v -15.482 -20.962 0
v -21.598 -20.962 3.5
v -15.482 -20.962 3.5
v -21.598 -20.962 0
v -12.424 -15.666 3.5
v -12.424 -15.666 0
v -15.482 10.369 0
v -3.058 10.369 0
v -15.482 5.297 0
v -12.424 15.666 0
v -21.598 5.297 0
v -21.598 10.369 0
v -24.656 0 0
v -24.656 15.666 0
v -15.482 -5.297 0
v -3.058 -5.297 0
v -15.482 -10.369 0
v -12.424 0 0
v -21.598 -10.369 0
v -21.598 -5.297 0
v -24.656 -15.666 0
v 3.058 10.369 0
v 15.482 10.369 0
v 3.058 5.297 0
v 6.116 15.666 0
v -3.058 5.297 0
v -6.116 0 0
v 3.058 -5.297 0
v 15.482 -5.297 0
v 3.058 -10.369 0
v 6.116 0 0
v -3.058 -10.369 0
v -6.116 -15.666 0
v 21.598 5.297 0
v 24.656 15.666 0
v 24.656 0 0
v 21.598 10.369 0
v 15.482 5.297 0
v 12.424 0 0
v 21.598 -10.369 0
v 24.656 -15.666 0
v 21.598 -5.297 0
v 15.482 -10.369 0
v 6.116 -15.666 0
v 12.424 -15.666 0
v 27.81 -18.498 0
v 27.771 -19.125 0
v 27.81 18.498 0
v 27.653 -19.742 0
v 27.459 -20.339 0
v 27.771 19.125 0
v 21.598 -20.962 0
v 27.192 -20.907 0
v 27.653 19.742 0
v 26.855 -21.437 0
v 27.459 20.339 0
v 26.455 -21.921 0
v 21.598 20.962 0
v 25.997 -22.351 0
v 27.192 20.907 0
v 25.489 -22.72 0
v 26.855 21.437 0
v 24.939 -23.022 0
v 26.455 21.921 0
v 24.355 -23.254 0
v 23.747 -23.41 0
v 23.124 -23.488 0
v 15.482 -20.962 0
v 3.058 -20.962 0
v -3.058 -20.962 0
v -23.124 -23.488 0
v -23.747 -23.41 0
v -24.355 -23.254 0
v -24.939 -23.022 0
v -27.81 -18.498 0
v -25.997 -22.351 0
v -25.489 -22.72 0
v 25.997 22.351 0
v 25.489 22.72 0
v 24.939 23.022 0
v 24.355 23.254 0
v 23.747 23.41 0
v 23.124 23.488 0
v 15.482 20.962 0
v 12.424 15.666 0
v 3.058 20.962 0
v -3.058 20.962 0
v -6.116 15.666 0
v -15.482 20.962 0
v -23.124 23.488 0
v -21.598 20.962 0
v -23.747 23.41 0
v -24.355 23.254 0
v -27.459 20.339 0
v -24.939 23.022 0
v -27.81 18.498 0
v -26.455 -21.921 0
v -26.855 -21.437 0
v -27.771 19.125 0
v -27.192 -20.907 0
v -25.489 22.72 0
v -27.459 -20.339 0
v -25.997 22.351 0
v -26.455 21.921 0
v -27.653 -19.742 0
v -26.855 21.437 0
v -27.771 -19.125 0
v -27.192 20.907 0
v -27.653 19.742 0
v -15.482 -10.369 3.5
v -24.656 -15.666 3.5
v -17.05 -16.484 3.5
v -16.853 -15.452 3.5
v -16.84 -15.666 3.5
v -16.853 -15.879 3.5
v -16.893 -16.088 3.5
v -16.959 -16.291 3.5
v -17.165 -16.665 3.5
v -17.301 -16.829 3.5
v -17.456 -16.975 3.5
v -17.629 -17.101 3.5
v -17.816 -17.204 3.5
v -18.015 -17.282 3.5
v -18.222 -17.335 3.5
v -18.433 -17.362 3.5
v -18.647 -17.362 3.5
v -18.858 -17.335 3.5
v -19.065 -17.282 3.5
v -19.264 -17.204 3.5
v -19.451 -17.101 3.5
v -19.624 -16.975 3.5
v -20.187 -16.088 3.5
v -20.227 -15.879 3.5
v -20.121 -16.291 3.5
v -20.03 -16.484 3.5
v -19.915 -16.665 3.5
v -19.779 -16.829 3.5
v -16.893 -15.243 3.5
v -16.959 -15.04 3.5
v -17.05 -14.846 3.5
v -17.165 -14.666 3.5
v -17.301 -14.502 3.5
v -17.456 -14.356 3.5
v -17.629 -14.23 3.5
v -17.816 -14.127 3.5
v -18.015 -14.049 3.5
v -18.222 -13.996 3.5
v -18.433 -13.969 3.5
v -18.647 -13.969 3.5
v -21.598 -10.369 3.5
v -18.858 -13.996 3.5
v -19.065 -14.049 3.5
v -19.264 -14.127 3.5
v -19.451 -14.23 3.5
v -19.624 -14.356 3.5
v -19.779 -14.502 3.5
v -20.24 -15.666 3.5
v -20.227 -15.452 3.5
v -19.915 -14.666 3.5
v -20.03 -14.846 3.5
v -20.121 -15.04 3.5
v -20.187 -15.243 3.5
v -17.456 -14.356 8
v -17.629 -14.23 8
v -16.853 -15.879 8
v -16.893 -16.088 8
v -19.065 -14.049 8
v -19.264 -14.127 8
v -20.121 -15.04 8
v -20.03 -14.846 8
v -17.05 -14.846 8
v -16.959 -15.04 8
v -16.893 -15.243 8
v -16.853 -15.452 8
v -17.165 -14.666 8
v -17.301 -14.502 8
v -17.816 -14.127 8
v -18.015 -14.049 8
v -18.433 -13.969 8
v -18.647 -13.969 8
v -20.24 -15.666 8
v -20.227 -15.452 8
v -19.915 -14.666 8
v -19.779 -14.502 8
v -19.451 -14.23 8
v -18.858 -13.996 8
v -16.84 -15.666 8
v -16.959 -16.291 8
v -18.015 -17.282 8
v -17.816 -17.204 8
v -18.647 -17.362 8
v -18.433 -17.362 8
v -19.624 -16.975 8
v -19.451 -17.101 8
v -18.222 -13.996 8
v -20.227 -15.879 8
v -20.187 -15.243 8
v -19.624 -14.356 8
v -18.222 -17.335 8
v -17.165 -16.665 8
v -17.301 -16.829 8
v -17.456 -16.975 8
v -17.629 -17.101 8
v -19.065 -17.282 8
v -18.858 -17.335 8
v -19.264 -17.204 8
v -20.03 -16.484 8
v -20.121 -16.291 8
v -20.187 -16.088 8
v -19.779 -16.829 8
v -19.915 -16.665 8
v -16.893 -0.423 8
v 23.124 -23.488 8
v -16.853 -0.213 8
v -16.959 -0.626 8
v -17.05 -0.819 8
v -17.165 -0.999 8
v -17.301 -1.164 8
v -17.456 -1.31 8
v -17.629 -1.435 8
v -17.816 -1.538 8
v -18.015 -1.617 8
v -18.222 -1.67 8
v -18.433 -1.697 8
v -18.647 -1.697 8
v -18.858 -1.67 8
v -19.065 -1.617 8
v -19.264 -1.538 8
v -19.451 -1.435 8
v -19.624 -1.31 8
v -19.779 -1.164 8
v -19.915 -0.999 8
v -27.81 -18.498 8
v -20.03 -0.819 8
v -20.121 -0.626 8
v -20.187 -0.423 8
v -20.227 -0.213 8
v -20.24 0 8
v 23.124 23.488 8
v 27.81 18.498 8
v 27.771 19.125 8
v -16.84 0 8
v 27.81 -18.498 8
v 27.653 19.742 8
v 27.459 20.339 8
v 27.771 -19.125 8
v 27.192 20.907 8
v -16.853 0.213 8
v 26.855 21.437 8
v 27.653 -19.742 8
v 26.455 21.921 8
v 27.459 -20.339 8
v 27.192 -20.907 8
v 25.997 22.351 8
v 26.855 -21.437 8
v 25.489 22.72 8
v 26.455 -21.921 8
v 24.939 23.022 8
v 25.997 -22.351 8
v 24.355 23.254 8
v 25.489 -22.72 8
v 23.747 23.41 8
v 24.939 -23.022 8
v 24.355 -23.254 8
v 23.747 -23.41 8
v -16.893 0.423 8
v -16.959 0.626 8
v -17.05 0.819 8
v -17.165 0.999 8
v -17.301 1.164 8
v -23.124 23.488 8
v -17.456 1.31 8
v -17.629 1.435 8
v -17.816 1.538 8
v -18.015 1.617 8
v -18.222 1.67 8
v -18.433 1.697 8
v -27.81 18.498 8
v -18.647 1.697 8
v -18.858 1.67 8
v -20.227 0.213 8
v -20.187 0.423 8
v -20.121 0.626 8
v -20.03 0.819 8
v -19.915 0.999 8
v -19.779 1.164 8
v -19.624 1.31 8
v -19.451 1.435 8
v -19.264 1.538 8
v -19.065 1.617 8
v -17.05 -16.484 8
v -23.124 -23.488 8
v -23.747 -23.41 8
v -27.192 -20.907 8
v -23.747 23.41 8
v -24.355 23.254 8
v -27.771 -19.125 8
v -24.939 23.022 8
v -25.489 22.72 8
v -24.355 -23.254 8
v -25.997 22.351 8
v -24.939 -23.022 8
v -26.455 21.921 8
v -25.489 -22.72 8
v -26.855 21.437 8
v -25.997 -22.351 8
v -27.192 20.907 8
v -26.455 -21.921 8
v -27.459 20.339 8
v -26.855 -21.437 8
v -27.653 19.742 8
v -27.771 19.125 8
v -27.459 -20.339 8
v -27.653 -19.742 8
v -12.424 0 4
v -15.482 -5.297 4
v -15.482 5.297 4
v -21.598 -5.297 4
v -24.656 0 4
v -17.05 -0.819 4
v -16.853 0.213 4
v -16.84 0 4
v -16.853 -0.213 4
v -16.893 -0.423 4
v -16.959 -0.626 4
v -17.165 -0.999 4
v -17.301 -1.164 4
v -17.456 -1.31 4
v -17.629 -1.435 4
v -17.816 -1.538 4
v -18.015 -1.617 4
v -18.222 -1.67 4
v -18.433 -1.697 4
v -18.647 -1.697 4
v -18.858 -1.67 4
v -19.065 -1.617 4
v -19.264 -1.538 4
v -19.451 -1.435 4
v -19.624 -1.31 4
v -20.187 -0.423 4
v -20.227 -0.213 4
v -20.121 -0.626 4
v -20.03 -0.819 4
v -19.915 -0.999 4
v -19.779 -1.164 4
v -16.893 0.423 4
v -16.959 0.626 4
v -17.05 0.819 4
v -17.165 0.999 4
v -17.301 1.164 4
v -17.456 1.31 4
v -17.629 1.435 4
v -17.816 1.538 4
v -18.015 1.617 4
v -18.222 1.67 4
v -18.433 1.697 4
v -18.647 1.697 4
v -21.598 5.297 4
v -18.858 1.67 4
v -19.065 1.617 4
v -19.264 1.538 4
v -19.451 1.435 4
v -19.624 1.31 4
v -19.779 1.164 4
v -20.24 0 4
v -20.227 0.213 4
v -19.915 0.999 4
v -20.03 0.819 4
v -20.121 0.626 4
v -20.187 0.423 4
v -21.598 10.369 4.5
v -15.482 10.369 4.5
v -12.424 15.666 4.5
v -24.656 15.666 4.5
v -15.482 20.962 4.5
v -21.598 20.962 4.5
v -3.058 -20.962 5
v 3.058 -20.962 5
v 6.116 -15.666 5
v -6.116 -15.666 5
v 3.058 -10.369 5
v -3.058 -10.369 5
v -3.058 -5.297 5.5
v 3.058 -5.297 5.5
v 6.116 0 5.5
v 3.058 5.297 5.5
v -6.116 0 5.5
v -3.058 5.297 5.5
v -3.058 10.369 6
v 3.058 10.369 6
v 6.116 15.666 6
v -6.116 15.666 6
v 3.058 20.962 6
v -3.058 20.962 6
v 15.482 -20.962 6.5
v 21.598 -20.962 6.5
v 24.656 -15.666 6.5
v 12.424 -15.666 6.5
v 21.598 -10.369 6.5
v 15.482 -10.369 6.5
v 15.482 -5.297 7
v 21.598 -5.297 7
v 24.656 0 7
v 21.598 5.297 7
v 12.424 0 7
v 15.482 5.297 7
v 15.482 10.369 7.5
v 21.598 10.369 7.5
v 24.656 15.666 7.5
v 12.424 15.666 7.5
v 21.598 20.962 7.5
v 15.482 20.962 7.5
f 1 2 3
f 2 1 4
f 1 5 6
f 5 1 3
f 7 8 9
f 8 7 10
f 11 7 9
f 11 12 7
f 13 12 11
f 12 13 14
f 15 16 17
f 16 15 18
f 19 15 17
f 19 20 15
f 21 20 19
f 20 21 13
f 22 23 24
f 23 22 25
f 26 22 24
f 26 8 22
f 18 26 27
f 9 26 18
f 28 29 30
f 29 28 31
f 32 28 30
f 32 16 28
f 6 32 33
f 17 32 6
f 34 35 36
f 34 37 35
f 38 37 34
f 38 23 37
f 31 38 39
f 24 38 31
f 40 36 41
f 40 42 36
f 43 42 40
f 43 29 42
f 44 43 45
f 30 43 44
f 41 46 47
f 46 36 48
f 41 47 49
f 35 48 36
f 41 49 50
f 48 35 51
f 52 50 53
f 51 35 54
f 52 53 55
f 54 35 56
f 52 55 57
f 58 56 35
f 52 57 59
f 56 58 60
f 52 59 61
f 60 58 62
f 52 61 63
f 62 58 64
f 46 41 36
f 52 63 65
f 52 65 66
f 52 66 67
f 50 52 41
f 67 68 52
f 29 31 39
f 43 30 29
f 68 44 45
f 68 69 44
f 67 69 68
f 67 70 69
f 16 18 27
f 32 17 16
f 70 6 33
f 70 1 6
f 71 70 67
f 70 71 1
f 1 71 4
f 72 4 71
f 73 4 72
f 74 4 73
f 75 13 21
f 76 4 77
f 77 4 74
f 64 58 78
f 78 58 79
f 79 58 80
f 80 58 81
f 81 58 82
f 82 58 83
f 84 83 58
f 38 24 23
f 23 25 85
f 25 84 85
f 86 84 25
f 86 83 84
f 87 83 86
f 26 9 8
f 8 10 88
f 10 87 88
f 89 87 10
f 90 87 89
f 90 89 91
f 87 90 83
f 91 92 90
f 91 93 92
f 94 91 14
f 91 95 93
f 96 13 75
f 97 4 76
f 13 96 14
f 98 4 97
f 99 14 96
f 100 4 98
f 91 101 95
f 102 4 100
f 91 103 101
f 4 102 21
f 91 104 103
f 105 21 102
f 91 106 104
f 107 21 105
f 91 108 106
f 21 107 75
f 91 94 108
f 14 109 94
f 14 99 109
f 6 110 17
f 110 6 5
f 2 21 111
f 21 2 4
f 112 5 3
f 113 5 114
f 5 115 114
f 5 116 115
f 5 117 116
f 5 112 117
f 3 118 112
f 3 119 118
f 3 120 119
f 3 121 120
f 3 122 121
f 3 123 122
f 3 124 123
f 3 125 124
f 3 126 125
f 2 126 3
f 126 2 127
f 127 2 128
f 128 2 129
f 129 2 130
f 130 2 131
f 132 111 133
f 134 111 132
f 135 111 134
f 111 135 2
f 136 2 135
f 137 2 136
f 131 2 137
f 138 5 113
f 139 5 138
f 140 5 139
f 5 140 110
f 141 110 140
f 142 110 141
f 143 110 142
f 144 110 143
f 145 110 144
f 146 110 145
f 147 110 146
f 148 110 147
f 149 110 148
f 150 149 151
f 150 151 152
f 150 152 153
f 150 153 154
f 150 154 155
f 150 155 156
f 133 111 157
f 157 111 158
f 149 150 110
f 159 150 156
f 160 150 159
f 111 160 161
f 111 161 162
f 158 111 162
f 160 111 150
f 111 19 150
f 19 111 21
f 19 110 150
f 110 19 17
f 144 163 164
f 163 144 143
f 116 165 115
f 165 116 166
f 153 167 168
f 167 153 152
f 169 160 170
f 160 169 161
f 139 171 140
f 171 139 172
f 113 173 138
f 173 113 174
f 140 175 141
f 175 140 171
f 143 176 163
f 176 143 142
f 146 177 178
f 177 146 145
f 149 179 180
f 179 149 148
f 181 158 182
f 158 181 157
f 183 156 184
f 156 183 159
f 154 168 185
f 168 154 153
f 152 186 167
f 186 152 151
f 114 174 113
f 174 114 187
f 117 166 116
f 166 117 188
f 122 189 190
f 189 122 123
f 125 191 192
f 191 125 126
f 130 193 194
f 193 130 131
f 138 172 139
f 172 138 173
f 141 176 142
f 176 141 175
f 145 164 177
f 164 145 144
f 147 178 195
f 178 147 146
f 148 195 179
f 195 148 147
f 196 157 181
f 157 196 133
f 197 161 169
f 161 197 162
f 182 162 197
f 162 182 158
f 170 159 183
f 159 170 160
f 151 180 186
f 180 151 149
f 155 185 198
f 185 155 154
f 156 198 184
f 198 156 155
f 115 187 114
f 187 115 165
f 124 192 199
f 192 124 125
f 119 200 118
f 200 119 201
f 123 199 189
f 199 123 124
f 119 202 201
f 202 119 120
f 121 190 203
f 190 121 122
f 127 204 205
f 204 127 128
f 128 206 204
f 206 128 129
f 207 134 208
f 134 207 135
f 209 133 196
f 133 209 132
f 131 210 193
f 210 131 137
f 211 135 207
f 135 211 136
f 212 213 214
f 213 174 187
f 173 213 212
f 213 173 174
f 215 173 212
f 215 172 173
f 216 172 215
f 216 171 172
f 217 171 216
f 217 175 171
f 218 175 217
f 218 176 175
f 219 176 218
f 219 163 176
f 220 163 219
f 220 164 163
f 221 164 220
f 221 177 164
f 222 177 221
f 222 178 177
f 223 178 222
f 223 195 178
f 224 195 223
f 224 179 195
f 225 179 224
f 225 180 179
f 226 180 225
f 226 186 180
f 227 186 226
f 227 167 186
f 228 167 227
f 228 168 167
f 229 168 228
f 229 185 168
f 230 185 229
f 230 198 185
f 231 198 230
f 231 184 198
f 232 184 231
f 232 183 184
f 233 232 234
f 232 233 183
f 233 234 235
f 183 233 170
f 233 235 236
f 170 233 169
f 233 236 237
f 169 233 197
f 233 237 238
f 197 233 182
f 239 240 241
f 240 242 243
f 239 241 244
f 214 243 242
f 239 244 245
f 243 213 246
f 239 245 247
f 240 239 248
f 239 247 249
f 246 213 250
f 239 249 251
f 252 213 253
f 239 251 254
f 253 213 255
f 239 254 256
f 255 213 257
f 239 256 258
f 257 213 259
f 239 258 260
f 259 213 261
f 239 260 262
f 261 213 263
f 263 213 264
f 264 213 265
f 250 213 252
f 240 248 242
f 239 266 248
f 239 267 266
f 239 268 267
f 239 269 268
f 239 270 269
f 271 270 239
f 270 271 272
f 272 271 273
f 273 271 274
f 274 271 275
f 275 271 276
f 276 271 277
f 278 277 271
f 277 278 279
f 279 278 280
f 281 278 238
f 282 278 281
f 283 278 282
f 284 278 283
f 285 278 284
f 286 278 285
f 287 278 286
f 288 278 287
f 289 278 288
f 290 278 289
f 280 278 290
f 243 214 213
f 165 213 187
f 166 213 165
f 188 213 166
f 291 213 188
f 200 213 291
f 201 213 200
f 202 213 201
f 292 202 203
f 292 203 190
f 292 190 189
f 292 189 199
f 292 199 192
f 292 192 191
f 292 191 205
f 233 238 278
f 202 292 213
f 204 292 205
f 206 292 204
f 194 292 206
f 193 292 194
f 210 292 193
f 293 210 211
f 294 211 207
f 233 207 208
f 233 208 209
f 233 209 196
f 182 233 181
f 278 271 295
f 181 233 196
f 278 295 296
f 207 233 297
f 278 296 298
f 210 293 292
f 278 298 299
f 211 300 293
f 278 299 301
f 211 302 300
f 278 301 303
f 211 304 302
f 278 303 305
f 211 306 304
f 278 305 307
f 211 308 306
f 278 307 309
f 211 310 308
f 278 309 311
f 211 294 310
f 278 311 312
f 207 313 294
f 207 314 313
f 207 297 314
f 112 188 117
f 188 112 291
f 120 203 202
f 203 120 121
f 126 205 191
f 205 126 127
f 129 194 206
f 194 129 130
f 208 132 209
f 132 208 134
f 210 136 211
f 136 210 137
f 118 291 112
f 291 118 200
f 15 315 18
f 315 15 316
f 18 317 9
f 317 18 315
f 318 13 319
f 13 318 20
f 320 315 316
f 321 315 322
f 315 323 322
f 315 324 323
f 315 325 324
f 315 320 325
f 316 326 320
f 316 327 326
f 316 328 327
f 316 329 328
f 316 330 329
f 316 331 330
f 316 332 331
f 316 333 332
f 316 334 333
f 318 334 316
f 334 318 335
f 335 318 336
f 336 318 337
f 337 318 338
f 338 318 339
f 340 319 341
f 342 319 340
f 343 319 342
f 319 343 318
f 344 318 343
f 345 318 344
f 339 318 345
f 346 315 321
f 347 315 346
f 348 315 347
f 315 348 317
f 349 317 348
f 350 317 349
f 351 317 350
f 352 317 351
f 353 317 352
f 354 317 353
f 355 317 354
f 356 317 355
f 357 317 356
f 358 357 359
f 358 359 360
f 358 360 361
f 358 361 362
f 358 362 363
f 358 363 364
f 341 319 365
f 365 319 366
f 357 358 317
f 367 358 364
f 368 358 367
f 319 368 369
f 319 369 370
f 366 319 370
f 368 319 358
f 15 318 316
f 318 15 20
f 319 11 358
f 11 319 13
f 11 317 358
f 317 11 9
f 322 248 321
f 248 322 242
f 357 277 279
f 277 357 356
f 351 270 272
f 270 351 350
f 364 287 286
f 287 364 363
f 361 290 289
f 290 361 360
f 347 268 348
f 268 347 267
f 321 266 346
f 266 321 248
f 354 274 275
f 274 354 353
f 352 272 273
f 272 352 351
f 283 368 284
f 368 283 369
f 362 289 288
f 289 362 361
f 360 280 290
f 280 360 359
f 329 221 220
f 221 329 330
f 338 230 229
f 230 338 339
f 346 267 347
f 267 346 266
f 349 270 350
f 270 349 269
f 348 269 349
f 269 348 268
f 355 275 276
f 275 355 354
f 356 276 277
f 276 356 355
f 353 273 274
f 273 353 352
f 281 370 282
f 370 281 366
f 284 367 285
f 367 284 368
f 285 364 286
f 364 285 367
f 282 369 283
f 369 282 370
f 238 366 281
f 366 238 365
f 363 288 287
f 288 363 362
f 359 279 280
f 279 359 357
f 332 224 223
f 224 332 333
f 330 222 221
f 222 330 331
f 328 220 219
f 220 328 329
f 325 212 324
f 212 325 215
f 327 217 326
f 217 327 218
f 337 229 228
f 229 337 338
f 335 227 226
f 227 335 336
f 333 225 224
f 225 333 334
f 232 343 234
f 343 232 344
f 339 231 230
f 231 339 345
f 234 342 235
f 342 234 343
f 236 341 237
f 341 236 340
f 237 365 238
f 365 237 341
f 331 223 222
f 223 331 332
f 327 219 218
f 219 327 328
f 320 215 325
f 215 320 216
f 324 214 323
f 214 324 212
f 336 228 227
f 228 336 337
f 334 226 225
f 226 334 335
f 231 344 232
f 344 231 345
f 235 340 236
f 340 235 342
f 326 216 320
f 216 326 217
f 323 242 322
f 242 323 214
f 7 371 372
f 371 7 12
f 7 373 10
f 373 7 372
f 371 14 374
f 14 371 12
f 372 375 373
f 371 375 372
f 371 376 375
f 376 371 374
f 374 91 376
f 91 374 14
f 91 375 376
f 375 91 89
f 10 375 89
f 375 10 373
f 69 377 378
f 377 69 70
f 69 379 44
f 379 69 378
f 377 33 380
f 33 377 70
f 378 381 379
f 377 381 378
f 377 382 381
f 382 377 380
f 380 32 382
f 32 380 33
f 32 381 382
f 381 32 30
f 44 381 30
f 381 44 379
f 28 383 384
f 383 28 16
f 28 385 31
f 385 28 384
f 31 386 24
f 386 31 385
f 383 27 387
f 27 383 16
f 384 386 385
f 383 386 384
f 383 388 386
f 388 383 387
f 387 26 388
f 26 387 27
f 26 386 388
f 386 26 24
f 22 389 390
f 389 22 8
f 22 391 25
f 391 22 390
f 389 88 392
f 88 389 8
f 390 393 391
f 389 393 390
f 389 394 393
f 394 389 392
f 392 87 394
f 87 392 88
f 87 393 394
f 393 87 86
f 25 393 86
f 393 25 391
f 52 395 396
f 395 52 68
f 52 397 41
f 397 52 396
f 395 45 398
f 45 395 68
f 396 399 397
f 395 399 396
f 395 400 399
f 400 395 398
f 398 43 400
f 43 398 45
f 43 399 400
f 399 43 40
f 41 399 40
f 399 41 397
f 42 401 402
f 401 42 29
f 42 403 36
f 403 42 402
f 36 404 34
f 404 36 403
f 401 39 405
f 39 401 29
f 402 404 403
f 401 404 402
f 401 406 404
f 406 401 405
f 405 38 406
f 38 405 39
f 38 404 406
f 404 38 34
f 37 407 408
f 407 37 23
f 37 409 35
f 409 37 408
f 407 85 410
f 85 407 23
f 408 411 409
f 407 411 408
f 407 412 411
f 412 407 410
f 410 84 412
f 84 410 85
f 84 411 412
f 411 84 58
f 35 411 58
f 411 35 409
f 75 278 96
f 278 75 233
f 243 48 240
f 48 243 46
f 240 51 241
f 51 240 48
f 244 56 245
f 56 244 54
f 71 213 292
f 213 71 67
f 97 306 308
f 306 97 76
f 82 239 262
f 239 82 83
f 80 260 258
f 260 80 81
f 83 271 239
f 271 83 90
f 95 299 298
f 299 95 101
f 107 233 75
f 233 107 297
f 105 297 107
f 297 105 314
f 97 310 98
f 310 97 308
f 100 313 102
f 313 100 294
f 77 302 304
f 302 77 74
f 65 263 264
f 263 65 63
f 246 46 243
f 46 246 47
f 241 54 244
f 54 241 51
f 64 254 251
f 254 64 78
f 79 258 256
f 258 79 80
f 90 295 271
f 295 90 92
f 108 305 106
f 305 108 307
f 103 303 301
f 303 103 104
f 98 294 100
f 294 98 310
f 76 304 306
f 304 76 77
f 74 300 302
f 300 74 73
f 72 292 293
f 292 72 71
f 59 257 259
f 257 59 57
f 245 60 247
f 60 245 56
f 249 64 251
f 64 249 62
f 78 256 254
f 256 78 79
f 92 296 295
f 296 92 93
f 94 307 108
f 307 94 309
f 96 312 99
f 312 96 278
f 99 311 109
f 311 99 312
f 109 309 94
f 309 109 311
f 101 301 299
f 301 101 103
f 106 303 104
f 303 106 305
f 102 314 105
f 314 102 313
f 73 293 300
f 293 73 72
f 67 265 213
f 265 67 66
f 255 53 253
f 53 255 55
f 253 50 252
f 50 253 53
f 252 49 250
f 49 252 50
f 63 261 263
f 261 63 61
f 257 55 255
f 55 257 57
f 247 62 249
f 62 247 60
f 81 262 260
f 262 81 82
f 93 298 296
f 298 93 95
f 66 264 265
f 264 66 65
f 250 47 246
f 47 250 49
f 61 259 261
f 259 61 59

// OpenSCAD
$fn = 50;


difference() {
	union() {
		translate(v = [0, 0, 0]) {
			rotate(a = [0, 0, 0]) {
				hull() {
					translate(v = [-22.8100000000, 18.4982668977, 0]) {
						rotate(a = [0, 0, 0]) {
							translate(v = [0, 0, 0]) {
								rotate(a = [0, 0, 0]) {
									cylinder(h = 8, r = 5);
								}
							}
						}
					}
					translate(v = [22.8100000000, 18.4982668977, 0]) {
						rotate(a = [0, 0, 0]) {
							translate(v = [0, 0, 0]) {
								rotate(a = [0, 0, 0]) {
									cylinder(h = 8, r = 5);
								}
							}
						}
					}
					translate(v = [-22.8100000000, -18.4982668977, 0]) {
						rotate(a = [0, 0, 0]) {
							translate(v = [0, 0, 0]) {
								rotate(a = [0, 0, 0]) {
									cylinder(h = 8, r = 5);
								}
							}
						}
					}
					translate(v = [22.8100000000, -18.4982668977, 0]) {
						rotate(a = [0, 0, 0]) {
							translate(v = [0, 0, 0]) {
								rotate(a = [0, 0, 0]) {
									cylinder(h = 8, r = 5);
								}
							}
						}
					}
				}
			}
		}
	}
	union() {
		translate(v = [-18.5400000000, -15.6655112652, 0]) {
			rotate(a = [0, 0, 0]) {
				#translate(v = [0, 0, 0]) {
					rotate(a = [0, 0, 0]) {
						linear_extrude(height = 3.5000000000) {
							polygon(points = [[6.1162000000, 0.0000000000], [3.0581000000, 5.2967845746], [-3.0581000000, 5.2967845746], [-6.1162000000, 0.0000000000], [-3.0581000000, -5.2967845746], [3.0581000000, -5.2967845746]]);
						}
					}
				}
			}
		}
		translate(v = [-18.5400000000, -15.6655112652, 0]) {
			rotate(a = [0, 0, 0]) {
				cylinder(h = 8, r = 1.7000000000);
			}
		}
		translate(v = [-18.5400000000, 0.0000000000, 0]) {
			rotate(a = [0, 0, 0]) {
				#translate(v = [0, 0, 0]) {
					rotate(a = [0, 0, 0]) {
						linear_extrude(height = 4.0000000000) {
							polygon(points = [[6.1162000000, 0.0000000000], [3.0581000000, 5.2967845746], [-3.0581000000, 5.2967845746], [-6.1162000000, 0.0000000000], [-3.0581000000, -5.2967845746], [3.0581000000, -5.2967845746]]);
						}
					}
				}
			}
		}
		translate(v = [-18.5400000000, 0.0000000000, 0]) {
			rotate(a = [0, 0, 0]) {
				cylinder(h = 8, r = 1.7000000000);
			}
		}
		translate(v = [-18.5400000000, 15.6655112652, 0]) {
			rotate(a = [0, 0, 0]) {
				#translate(v = [0, 0, 0]) {
					rotate(a = [0, 0, 0]) {
						linear_extrude(height = 4.5000000000) {
							polygon(points = [[6.1162000000, 0.0000000000], [3.0581000000, 5.2967845746], [-3.0581000000, 5.2967845746], [-6.1162000000, 0.0000000000], [-3.0581000000, -5.2967845746], [3.0581000000, -5.2967845746]]);
						}
					}
				}
			}
		}
		translate(v = [0.0000000000, -15.6655112652, 0]) {
			rotate(a = [0, 0, 0]) {
				#translate(v = [0, 0, 0]) {
					rotate(a = [0, 0, 0]) {
						linear_extrude(height = 5.0000000000) {
							polygon(points = [[6.1162000000, 0.0000000000], [3.0581000000, 5.2967845746], [-3.0581000000, 5.2967845746], [-6.1162000000, 0.0000000000], [-3.0581000000, -5.2967845746], [3.0581000000, -5.2967845746]]);
						}
					}
				}
			}
		}
		translate(v = [0.0000000000, 0.0000000000, 0]) {
			rotate(a = [0, 0, 0]) {
				#translate(v = [0, 0, 0]) {
					rotate(a = [0, 0, 0]) {
						linear_extrude(height = 5.5000000000) {
							polygon(points = [[6.1162000000, 0.0000000000], [3.0581000000, 5.2967845746], [-3.0581000000, 5.2967845746], [-6.1162000000, 0.0000000000], [-3.0581000000, -5.2967845746], [3.0581000000, -5.2967845746]]);
						}
					}
				}
			}
		}
		translate(v = [0.0000000000, 15.6655112652, 0]) {
			rotate(a = [0, 0, 0]) {
				#translate(v = [0, 0, 0]) {
					rotate(a = [0, 0, 0]) {
						linear_extrude(height = 6.0000000000) {
							polygon(points = [[6.1162000000, 0.0000000000], [3.0581000000, 5.2967845746], [-3.0581000000, 5.2967845746], [-6.1162000000, 0.0000000000], [-3.0581000000, -5.2967845746], [3.0581000000, -5.2967845746]]);
						}
					}
				}
			}
		}
		translate(v = [18.5400000000, -15.6655112652, 0]) {
			rotate(a = [0, 0, 0]) {
				#translate(v = [0, 0, 0]) {
					rotate(a = [0, 0, 0]) {
						linear_extrude(height = 6.5000000000) {
							polygon(points = [[6.1162000000, 0.0000000000], [3.0581000000, 5.2967845746], [-3.0581000000, 5.2967845746], [-6.1162000000, 0.0000000000], [-3.0581000000, -5.2967845746], [3.0581000000, -5.2967845746]]);
						}
					}
				}
			}
		}
		translate(v = [18.5400000000, 0.0000000000, 0]) {
			rotate(a = [0, 0, 0]) {
				#translate(v = [0, 0, 0]) {
					rotate(a = [0, 0, 0]) {
						linear_extrude(height = 7.0000000000) {
							polygon(points = [[6.1162000000, 0.0000000000], [3.0581000000, 5.2967845746], [-3.0581000000, 5.2967845746], [-6.1162000000, 0.0000000000], [-3.0581000000, -5.2967845746], [3.0581000000, -5.2967845746]]);
						}
					}
				}
			}
		}
		translate(v = [18.5400000000, 15.6655112652, 0]) {
			rotate(a = [0, 0, 0]) {
				#translate(v = [0, 0, 0]) {
					rotate(a = [0, 0, 0]) {
						linear_extrude(height = 7.5000000000) {
							polygon(points = [[6.1162000000, 0.0000000000], [3.0581000000, 5.2967845746], [-3.0581000000, 5.2967845746], [-6.1162000000, 0.0000000000], [-3.0581000000, -5.2967845746], [3.0581000000, -5.2967845746]]);
						}
					}
				}
			}
		}
	}
}
